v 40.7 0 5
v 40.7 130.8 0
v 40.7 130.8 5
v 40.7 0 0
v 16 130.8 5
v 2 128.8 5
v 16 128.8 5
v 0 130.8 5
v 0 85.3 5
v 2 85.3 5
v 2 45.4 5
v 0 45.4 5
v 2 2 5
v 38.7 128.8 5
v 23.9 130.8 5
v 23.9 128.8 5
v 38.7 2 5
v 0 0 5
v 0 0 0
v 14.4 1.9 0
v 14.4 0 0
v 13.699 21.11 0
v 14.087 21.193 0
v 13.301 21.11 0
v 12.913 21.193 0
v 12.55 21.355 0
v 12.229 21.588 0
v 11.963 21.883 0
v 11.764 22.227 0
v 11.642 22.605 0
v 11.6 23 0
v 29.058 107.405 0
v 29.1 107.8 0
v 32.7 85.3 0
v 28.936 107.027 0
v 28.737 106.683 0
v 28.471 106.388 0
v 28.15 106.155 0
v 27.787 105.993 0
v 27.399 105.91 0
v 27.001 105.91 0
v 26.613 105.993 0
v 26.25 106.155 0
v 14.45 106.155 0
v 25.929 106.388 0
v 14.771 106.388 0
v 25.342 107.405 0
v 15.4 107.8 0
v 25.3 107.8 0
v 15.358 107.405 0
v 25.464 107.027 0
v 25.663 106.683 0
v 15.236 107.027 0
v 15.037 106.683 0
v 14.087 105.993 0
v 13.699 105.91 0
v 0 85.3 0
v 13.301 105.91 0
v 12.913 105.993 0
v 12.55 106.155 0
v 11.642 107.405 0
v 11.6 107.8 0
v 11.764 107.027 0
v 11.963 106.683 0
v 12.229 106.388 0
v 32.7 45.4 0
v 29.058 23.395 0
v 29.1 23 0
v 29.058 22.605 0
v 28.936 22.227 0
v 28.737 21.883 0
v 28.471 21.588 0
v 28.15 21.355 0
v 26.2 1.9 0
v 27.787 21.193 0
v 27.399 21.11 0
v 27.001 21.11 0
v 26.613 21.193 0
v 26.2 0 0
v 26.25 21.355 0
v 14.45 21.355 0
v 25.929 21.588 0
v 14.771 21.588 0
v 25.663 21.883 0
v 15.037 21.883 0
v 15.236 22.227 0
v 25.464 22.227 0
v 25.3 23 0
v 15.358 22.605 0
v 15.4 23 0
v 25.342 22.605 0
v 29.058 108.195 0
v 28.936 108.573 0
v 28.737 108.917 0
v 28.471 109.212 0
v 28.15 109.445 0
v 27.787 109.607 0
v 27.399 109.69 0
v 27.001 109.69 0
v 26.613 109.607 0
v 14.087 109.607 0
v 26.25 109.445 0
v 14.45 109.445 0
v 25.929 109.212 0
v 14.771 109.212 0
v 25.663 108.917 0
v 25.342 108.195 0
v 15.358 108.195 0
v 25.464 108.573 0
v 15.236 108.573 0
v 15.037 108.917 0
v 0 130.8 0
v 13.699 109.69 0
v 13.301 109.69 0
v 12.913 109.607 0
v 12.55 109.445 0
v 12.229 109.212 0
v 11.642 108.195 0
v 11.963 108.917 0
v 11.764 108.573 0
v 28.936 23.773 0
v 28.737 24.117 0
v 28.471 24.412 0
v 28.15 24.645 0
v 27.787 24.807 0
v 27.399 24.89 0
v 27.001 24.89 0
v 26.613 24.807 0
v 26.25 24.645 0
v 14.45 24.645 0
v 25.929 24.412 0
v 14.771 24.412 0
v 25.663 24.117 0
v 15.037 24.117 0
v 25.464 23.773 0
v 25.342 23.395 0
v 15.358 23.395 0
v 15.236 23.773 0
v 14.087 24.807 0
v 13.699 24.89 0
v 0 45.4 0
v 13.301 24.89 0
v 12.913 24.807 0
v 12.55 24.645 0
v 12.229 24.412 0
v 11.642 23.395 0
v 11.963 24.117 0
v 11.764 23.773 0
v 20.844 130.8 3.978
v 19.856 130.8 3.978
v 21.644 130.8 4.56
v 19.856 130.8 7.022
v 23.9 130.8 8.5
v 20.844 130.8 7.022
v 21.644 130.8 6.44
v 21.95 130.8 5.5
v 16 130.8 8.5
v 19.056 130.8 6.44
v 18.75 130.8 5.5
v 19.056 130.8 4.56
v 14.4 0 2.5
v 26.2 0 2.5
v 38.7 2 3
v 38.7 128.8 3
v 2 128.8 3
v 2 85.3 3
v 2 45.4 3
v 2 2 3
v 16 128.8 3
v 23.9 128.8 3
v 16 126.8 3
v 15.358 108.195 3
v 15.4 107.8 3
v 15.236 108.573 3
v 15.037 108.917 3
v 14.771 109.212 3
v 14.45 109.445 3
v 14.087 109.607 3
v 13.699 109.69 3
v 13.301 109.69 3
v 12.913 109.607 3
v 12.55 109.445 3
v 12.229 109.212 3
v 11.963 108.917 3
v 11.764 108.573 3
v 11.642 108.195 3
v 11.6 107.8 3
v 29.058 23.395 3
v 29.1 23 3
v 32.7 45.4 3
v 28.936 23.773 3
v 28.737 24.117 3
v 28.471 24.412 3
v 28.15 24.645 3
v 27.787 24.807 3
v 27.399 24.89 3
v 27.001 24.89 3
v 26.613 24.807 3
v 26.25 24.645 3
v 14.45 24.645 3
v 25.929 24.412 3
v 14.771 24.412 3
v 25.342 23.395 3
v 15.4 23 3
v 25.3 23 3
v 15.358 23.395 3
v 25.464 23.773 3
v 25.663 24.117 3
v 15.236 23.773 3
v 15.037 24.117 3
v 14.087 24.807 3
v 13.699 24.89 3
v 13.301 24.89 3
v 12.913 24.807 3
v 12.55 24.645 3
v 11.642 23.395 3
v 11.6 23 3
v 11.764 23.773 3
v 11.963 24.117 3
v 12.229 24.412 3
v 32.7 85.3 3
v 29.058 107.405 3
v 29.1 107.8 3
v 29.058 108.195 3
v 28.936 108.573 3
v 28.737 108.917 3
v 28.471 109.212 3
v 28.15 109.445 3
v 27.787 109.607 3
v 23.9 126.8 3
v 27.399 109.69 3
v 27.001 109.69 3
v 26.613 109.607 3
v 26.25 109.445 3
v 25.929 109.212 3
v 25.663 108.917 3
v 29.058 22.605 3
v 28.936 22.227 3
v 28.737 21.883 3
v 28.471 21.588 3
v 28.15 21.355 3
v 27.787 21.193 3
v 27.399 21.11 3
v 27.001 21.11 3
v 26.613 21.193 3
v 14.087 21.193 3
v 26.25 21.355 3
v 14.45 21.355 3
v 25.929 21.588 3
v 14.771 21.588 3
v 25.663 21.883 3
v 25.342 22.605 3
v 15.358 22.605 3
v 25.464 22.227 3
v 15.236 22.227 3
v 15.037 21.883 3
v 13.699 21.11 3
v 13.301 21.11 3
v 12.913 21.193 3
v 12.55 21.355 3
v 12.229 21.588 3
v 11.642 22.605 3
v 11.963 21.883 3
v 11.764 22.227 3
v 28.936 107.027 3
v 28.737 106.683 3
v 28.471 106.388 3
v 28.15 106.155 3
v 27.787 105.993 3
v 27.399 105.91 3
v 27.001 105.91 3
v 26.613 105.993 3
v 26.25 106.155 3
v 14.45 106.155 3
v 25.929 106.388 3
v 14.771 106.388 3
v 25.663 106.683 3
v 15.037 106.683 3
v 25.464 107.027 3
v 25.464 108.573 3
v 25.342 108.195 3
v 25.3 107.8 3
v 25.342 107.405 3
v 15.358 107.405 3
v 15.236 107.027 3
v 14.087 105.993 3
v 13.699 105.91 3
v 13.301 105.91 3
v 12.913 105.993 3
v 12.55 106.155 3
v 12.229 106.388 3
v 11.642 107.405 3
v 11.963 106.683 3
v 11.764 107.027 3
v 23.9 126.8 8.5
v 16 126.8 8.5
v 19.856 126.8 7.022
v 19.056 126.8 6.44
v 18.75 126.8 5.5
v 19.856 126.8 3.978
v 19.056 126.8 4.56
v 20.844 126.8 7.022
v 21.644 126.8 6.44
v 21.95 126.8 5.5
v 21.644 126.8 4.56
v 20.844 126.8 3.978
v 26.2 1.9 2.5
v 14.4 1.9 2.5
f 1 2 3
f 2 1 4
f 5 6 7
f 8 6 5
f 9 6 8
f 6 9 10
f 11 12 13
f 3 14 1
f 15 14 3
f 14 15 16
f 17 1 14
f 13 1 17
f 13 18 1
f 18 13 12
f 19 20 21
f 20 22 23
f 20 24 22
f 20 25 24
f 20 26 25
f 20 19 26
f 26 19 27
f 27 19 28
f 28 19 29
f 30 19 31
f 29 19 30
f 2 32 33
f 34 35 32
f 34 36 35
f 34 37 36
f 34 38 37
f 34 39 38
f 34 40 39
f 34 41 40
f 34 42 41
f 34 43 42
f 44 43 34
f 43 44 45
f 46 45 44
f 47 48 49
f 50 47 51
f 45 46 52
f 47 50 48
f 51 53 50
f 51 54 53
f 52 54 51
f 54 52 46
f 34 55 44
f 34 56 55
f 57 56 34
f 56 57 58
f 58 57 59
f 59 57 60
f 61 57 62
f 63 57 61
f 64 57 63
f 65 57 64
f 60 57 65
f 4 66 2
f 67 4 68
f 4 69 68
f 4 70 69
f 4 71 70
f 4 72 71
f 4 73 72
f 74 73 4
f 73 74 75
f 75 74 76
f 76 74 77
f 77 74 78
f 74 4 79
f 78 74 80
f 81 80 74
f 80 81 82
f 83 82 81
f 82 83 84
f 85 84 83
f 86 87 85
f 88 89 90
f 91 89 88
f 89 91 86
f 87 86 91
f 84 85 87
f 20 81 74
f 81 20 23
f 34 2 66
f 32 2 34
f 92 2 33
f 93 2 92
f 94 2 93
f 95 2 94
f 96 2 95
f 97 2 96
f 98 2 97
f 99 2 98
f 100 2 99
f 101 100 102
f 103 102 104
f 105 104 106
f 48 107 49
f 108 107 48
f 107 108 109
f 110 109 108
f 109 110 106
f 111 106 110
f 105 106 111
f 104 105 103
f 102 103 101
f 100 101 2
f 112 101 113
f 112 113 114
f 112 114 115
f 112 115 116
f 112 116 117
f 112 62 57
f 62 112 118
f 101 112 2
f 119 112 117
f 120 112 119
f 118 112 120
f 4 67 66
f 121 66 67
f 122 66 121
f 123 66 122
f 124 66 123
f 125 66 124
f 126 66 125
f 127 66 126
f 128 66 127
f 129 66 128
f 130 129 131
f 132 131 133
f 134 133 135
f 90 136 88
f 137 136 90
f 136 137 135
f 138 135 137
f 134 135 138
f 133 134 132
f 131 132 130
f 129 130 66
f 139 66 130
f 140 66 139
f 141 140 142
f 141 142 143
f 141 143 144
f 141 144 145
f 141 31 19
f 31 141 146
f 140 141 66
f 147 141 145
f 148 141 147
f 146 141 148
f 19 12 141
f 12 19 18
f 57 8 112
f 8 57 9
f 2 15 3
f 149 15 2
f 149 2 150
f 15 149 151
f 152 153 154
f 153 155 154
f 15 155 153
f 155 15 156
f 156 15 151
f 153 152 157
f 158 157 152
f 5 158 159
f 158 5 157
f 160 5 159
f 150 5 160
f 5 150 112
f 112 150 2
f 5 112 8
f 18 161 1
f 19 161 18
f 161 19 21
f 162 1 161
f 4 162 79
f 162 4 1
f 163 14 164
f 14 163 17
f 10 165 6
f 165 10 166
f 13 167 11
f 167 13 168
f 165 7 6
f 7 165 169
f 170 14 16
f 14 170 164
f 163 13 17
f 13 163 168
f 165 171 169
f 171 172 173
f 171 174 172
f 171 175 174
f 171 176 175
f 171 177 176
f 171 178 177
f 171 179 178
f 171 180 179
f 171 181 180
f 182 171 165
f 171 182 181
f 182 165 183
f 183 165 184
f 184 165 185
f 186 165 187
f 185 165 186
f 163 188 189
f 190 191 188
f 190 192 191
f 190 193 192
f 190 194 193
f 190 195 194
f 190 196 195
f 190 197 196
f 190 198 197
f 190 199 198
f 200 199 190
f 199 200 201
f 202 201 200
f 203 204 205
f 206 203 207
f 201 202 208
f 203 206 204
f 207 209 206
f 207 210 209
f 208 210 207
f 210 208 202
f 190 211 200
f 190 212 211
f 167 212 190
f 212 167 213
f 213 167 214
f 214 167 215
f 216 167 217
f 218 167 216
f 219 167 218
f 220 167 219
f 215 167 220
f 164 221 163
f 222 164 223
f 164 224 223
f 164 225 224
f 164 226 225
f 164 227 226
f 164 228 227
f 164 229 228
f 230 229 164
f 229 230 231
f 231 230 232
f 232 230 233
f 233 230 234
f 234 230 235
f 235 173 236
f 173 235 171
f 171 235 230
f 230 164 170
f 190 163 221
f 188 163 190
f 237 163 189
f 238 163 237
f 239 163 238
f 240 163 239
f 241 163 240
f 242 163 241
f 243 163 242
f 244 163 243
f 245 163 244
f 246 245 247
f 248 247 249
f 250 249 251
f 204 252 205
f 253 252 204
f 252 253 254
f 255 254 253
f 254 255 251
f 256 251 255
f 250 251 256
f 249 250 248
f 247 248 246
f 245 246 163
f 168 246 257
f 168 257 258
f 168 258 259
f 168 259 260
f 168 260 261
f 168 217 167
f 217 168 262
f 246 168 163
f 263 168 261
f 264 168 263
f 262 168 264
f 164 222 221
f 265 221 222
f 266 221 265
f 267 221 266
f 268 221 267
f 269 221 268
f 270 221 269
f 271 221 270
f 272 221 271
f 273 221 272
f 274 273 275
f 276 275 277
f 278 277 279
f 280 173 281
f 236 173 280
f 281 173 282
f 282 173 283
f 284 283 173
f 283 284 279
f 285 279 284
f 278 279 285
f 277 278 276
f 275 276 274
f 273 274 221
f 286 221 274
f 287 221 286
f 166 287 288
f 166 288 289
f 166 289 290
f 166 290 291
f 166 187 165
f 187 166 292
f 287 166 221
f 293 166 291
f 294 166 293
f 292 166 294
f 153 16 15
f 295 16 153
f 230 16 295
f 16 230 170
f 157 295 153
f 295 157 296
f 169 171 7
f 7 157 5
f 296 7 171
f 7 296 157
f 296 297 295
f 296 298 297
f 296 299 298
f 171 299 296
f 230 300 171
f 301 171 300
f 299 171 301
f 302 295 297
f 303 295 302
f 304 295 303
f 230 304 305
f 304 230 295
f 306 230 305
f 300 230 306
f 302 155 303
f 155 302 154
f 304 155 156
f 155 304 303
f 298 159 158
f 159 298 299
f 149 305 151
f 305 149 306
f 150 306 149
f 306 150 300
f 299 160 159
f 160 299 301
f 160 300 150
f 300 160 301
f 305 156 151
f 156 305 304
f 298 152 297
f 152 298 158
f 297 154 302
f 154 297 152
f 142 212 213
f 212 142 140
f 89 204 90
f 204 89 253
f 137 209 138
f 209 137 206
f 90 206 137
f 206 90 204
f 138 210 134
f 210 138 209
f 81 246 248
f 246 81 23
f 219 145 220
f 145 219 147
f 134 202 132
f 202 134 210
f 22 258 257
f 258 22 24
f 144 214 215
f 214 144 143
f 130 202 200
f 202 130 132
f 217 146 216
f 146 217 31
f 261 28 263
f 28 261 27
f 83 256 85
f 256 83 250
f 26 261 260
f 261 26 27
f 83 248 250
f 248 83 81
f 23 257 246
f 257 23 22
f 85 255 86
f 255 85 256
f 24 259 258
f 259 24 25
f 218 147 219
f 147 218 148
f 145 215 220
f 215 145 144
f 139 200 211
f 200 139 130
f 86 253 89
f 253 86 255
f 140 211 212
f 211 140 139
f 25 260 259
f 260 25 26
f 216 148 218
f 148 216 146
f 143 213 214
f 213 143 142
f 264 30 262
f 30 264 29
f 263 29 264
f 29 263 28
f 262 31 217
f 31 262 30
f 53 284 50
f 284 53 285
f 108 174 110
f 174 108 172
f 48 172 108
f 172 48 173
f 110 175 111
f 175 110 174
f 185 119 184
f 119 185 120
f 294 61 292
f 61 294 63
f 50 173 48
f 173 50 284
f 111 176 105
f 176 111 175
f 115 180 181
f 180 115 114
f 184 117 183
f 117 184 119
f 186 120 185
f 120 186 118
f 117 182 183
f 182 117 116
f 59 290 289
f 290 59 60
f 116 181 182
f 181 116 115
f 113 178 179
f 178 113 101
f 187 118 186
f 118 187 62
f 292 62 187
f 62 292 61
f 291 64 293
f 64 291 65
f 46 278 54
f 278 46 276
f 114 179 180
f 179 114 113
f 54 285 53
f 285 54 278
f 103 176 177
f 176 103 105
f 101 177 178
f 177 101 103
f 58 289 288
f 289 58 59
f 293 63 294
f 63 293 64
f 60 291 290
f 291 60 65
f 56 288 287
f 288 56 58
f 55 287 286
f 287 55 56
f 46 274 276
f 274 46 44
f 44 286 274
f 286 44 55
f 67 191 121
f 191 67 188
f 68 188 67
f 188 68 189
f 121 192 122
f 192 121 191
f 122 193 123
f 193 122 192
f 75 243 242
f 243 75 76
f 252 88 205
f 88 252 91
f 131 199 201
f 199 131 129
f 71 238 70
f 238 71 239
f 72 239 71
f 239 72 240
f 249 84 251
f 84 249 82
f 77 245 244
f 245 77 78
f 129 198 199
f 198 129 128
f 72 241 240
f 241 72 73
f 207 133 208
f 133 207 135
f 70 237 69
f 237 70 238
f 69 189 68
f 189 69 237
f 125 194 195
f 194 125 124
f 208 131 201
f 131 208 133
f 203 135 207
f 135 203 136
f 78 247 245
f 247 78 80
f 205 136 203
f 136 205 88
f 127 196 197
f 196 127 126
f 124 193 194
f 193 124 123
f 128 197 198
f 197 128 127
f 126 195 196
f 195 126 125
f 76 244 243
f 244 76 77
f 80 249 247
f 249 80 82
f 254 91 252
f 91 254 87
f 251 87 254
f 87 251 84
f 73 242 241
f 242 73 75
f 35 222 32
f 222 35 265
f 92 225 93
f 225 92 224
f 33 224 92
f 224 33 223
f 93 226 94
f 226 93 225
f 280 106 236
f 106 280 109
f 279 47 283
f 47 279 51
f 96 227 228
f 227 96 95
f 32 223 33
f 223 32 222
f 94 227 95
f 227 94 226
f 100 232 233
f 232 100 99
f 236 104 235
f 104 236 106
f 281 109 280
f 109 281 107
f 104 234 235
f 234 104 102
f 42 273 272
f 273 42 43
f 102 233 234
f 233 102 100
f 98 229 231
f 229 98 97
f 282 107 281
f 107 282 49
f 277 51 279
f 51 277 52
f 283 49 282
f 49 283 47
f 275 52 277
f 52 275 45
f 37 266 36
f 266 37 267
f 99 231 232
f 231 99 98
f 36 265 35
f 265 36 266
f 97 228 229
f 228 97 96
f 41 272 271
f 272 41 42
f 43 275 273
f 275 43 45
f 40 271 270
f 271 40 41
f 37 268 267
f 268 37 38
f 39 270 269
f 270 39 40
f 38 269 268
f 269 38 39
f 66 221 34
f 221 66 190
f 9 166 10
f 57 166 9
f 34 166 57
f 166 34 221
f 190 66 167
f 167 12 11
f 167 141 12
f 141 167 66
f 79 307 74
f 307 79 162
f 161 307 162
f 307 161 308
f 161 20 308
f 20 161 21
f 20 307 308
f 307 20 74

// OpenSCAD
difference(){
    union() {
        // Base
        cube([40.7,130.8,3]);
        // Borde
        difference() {
            cube([40.7,130.8,5]);
            translate([2,2,-1]) 
                cube([36.7,126.8,7]);
        }
        // Base tornillo
        translate ([16,126.8,0])
            cube([7.9,4,8.5]);
    }

    // Taladro tornillo
    translate ([20.35,130.8,5.5])
        rotate([90,0,0])
            cylinder(h=20, r=1.6, center=true, $fn=10);
    // Taladro sup. izq.
    translate ([13.5,23,0])
        cylinder(h=20, r=1.9, center=true, $fn=30);
    // Taladro inf. izq.
    translate ([13.5,107.8,0])
        cylinder(h=20, r=1.9, center=true, $fn=30);
    // Taladro sup. der.
    translate ([27.2,23,0])
        cylinder(h=20, r=1.9, center=true, $fn=30);
    // Taladro inf. der.
    translate ([27.2,107.8,0])
        cylinder(h=20, r=1.9, center=true, $fn=30);
    // Salida cableado
    translate ([8,45.4,-1])
        cube([24.7,39.9,20]);
    // Salida cableado (lateral)
    translate ([-1,45.4,-1])
        cube([24.7,39.9,20]);
    // Texto
    translate ([12,35,3])
        text("POD SUITE", size = 2);
    translate ([13,30,3])
        text(" HOSTEL", size = 2);
    // Cierre
    translate([14.4,-1,-1])
        cube([11.8,2.9,3.5]);
}
